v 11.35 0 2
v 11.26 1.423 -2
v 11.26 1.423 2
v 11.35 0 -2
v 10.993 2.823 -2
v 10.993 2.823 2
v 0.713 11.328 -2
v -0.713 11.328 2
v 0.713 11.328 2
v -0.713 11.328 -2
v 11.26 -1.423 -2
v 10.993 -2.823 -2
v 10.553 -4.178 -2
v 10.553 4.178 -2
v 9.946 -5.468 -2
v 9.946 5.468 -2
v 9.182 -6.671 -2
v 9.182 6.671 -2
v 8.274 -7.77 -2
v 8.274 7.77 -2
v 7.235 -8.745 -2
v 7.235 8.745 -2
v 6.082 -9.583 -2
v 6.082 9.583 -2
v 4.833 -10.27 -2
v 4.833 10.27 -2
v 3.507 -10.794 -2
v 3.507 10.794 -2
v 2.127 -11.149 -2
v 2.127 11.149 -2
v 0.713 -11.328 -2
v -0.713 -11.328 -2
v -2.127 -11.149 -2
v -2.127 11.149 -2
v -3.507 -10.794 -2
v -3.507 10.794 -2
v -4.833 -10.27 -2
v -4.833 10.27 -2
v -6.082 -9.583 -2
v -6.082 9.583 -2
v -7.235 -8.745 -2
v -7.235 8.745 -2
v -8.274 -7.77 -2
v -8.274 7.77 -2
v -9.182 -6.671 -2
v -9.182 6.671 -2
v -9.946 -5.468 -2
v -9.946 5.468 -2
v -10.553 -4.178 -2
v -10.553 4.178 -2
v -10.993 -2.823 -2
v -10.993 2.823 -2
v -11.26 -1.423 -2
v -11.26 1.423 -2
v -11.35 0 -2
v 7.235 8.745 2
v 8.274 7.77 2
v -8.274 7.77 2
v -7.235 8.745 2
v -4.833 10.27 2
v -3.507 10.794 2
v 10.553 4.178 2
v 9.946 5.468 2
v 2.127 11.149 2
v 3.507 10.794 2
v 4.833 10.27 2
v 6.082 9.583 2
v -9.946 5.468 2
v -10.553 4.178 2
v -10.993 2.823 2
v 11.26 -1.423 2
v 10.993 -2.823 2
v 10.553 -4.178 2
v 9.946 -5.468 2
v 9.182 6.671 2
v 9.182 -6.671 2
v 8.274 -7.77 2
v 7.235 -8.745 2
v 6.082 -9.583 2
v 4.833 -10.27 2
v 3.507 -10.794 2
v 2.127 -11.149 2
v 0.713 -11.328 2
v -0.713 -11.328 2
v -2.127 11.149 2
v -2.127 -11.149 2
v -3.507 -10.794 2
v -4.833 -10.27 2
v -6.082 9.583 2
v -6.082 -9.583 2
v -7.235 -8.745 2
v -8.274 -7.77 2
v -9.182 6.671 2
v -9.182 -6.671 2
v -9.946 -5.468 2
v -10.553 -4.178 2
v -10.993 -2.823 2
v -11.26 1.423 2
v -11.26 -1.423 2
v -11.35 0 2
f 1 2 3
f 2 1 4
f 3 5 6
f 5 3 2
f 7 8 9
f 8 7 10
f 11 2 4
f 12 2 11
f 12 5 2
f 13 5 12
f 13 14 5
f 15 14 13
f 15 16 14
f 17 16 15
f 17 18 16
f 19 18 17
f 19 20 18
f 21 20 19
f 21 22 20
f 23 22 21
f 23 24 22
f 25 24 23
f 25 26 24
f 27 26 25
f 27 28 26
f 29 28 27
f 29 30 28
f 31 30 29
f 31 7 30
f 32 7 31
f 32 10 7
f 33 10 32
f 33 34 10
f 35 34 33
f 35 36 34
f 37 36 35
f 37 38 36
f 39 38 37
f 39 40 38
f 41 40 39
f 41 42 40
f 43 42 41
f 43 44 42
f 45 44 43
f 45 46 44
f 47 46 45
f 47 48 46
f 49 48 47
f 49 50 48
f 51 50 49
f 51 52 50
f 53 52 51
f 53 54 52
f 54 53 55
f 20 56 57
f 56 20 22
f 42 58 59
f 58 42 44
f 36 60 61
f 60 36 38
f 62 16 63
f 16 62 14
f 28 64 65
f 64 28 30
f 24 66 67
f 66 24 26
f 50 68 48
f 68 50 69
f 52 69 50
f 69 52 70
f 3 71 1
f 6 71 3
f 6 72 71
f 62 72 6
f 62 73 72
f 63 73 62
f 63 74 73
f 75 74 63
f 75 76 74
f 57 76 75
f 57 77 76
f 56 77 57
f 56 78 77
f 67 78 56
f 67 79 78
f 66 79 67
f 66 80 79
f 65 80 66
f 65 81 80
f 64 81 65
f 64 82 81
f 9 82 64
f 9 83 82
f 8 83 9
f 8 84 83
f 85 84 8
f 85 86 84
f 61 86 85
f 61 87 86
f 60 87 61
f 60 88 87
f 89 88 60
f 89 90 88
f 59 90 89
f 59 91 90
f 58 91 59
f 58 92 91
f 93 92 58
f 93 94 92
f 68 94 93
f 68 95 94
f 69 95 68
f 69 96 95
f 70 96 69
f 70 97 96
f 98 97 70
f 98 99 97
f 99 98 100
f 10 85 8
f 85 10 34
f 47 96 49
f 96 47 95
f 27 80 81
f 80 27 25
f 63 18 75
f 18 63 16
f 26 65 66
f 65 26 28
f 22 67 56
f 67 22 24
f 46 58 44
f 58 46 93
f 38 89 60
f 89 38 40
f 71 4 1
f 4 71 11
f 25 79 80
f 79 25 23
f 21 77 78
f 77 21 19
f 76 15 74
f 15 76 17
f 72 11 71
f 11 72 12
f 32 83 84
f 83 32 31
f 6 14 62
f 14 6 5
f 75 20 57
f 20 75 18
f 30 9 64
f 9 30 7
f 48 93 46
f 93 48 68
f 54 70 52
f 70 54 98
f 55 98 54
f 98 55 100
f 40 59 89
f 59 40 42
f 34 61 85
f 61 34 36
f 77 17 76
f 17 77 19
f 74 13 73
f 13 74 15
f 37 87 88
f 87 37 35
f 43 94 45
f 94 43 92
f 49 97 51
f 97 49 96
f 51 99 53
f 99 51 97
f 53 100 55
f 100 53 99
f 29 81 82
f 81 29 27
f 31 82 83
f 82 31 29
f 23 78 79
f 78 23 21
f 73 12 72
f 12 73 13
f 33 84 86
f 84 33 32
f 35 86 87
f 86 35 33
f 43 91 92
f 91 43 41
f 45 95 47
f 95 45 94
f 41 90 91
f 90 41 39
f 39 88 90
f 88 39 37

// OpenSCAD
$fn = 50;


difference() {
	union() {
		translate(v = [0, 0, -2.0000000000]) {
			cylinder(h = 4, r = 11.3500000000);
		}
	}
	union() {
		translate(v = [0, 0, -100.0000000000]) {
			cylinder(h = 200, r = 0);
		}
	}
}
